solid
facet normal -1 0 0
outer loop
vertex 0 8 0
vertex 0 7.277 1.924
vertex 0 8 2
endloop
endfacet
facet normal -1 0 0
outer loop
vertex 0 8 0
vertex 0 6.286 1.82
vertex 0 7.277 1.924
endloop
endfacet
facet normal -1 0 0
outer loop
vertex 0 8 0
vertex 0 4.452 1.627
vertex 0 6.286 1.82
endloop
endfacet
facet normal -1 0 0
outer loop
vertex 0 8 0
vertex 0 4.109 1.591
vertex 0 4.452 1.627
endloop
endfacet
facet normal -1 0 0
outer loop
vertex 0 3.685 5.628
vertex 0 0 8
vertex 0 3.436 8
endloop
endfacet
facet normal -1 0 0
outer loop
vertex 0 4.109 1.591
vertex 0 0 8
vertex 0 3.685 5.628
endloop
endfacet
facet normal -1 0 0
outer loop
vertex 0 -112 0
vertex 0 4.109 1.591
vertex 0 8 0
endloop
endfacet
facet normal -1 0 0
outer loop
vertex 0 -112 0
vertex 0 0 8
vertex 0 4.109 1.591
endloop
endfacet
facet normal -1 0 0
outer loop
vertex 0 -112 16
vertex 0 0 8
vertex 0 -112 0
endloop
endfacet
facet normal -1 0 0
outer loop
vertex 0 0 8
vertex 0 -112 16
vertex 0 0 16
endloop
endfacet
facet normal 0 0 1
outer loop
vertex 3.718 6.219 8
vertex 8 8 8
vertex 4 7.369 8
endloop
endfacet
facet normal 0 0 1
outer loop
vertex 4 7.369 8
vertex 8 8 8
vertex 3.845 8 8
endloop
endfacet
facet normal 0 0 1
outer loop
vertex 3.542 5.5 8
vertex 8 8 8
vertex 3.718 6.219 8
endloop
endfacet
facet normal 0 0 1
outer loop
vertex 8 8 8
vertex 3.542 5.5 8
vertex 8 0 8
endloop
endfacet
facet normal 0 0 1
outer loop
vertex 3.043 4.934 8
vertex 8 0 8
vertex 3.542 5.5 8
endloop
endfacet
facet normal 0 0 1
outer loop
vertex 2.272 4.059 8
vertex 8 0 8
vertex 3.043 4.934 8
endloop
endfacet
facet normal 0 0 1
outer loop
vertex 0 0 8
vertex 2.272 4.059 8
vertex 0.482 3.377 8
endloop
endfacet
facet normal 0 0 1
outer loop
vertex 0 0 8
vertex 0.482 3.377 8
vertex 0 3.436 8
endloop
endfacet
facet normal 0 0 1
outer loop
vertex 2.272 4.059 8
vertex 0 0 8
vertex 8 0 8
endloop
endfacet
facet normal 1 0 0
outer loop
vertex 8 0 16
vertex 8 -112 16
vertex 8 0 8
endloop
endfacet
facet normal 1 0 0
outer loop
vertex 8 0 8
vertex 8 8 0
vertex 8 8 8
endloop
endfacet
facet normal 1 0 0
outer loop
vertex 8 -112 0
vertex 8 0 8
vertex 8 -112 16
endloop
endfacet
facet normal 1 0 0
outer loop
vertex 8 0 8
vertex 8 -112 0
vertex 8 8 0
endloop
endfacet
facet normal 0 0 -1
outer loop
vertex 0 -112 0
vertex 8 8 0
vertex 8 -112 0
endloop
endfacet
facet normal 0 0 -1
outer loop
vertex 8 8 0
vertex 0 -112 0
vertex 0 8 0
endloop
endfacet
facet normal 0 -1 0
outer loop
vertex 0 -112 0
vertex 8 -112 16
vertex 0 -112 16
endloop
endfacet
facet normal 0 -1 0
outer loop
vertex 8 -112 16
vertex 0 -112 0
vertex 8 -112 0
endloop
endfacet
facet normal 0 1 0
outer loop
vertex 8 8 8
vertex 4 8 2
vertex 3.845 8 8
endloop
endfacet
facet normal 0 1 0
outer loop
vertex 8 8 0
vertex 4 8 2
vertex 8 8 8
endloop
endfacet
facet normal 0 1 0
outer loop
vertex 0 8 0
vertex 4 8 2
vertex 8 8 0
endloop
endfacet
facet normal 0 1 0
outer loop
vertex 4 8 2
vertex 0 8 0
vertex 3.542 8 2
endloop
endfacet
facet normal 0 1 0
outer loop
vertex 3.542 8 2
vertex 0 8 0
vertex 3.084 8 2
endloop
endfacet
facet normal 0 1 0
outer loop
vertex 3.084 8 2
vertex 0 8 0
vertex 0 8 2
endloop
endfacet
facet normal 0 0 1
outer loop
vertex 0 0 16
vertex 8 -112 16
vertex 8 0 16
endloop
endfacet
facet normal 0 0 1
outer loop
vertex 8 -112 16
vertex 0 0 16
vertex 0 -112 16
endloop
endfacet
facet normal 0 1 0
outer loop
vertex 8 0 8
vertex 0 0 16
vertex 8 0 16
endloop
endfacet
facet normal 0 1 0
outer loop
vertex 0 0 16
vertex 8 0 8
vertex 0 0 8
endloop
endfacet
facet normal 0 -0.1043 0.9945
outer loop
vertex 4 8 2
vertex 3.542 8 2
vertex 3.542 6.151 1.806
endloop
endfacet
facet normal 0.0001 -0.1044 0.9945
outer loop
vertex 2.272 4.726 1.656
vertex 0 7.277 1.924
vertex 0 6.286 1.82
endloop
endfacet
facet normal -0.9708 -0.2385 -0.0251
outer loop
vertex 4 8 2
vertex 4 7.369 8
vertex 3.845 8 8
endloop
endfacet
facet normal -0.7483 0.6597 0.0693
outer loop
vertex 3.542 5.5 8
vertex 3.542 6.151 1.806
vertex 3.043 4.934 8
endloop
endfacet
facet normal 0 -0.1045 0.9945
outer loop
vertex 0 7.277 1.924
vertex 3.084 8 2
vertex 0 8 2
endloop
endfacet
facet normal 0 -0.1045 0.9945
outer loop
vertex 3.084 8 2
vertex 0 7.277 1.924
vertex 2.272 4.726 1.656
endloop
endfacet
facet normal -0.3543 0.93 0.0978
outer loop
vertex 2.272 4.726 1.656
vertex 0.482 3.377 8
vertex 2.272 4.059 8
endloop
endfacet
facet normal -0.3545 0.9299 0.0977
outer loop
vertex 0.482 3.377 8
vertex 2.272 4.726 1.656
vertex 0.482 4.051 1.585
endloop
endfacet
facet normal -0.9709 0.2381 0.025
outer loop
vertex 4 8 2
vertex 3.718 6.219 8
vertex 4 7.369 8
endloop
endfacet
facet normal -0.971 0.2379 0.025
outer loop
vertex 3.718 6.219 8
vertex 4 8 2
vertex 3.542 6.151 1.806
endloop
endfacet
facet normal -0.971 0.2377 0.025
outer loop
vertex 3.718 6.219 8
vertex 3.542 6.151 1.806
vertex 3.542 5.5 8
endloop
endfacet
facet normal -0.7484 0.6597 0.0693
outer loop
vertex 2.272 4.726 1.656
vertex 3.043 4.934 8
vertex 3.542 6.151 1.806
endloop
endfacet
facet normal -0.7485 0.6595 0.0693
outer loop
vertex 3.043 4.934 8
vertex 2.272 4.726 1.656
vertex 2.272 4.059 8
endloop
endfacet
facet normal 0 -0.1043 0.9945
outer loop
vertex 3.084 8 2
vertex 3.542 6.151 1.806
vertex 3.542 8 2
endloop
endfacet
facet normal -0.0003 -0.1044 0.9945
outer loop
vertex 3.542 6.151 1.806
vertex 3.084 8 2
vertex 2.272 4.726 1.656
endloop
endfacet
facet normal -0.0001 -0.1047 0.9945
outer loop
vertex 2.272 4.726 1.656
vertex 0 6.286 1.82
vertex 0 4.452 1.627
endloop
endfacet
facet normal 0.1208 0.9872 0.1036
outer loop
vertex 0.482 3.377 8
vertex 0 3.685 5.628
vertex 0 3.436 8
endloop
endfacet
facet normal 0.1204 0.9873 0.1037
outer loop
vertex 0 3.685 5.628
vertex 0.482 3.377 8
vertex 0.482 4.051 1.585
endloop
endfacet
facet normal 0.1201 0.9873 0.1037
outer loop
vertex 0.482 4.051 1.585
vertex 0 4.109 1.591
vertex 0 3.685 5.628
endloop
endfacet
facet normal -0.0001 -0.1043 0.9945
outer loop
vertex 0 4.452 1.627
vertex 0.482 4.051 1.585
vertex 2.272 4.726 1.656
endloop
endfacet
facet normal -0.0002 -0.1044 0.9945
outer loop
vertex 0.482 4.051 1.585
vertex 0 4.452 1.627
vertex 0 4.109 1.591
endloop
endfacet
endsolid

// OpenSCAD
// ipad dimensions. the wrapper will be bigger than this so it slides in.
width = 60;
height = 120;

// how big the frame itself will be
border_size = 8;

// nail hole info
nail_diameter = 4;
nail_angle = 6; // degrees

module nail() {
	translate([width, border_size, 2]) {
		rotate([nail_angle, 0, 0]) {
			cylinder(border_size * 2, nail_diameter, nail_diameter);
		}
	}
}

translate([width * -1, 0, 0]) {
	difference() {
		translate([width, height * -1 + border_size, 0]) {
			cube([border_size, height, border_size]);

			translate([0, 0, border_size]){
				cube([border_size, height - border_size, border_size]);
			}
		}

		nail();
	}
}
